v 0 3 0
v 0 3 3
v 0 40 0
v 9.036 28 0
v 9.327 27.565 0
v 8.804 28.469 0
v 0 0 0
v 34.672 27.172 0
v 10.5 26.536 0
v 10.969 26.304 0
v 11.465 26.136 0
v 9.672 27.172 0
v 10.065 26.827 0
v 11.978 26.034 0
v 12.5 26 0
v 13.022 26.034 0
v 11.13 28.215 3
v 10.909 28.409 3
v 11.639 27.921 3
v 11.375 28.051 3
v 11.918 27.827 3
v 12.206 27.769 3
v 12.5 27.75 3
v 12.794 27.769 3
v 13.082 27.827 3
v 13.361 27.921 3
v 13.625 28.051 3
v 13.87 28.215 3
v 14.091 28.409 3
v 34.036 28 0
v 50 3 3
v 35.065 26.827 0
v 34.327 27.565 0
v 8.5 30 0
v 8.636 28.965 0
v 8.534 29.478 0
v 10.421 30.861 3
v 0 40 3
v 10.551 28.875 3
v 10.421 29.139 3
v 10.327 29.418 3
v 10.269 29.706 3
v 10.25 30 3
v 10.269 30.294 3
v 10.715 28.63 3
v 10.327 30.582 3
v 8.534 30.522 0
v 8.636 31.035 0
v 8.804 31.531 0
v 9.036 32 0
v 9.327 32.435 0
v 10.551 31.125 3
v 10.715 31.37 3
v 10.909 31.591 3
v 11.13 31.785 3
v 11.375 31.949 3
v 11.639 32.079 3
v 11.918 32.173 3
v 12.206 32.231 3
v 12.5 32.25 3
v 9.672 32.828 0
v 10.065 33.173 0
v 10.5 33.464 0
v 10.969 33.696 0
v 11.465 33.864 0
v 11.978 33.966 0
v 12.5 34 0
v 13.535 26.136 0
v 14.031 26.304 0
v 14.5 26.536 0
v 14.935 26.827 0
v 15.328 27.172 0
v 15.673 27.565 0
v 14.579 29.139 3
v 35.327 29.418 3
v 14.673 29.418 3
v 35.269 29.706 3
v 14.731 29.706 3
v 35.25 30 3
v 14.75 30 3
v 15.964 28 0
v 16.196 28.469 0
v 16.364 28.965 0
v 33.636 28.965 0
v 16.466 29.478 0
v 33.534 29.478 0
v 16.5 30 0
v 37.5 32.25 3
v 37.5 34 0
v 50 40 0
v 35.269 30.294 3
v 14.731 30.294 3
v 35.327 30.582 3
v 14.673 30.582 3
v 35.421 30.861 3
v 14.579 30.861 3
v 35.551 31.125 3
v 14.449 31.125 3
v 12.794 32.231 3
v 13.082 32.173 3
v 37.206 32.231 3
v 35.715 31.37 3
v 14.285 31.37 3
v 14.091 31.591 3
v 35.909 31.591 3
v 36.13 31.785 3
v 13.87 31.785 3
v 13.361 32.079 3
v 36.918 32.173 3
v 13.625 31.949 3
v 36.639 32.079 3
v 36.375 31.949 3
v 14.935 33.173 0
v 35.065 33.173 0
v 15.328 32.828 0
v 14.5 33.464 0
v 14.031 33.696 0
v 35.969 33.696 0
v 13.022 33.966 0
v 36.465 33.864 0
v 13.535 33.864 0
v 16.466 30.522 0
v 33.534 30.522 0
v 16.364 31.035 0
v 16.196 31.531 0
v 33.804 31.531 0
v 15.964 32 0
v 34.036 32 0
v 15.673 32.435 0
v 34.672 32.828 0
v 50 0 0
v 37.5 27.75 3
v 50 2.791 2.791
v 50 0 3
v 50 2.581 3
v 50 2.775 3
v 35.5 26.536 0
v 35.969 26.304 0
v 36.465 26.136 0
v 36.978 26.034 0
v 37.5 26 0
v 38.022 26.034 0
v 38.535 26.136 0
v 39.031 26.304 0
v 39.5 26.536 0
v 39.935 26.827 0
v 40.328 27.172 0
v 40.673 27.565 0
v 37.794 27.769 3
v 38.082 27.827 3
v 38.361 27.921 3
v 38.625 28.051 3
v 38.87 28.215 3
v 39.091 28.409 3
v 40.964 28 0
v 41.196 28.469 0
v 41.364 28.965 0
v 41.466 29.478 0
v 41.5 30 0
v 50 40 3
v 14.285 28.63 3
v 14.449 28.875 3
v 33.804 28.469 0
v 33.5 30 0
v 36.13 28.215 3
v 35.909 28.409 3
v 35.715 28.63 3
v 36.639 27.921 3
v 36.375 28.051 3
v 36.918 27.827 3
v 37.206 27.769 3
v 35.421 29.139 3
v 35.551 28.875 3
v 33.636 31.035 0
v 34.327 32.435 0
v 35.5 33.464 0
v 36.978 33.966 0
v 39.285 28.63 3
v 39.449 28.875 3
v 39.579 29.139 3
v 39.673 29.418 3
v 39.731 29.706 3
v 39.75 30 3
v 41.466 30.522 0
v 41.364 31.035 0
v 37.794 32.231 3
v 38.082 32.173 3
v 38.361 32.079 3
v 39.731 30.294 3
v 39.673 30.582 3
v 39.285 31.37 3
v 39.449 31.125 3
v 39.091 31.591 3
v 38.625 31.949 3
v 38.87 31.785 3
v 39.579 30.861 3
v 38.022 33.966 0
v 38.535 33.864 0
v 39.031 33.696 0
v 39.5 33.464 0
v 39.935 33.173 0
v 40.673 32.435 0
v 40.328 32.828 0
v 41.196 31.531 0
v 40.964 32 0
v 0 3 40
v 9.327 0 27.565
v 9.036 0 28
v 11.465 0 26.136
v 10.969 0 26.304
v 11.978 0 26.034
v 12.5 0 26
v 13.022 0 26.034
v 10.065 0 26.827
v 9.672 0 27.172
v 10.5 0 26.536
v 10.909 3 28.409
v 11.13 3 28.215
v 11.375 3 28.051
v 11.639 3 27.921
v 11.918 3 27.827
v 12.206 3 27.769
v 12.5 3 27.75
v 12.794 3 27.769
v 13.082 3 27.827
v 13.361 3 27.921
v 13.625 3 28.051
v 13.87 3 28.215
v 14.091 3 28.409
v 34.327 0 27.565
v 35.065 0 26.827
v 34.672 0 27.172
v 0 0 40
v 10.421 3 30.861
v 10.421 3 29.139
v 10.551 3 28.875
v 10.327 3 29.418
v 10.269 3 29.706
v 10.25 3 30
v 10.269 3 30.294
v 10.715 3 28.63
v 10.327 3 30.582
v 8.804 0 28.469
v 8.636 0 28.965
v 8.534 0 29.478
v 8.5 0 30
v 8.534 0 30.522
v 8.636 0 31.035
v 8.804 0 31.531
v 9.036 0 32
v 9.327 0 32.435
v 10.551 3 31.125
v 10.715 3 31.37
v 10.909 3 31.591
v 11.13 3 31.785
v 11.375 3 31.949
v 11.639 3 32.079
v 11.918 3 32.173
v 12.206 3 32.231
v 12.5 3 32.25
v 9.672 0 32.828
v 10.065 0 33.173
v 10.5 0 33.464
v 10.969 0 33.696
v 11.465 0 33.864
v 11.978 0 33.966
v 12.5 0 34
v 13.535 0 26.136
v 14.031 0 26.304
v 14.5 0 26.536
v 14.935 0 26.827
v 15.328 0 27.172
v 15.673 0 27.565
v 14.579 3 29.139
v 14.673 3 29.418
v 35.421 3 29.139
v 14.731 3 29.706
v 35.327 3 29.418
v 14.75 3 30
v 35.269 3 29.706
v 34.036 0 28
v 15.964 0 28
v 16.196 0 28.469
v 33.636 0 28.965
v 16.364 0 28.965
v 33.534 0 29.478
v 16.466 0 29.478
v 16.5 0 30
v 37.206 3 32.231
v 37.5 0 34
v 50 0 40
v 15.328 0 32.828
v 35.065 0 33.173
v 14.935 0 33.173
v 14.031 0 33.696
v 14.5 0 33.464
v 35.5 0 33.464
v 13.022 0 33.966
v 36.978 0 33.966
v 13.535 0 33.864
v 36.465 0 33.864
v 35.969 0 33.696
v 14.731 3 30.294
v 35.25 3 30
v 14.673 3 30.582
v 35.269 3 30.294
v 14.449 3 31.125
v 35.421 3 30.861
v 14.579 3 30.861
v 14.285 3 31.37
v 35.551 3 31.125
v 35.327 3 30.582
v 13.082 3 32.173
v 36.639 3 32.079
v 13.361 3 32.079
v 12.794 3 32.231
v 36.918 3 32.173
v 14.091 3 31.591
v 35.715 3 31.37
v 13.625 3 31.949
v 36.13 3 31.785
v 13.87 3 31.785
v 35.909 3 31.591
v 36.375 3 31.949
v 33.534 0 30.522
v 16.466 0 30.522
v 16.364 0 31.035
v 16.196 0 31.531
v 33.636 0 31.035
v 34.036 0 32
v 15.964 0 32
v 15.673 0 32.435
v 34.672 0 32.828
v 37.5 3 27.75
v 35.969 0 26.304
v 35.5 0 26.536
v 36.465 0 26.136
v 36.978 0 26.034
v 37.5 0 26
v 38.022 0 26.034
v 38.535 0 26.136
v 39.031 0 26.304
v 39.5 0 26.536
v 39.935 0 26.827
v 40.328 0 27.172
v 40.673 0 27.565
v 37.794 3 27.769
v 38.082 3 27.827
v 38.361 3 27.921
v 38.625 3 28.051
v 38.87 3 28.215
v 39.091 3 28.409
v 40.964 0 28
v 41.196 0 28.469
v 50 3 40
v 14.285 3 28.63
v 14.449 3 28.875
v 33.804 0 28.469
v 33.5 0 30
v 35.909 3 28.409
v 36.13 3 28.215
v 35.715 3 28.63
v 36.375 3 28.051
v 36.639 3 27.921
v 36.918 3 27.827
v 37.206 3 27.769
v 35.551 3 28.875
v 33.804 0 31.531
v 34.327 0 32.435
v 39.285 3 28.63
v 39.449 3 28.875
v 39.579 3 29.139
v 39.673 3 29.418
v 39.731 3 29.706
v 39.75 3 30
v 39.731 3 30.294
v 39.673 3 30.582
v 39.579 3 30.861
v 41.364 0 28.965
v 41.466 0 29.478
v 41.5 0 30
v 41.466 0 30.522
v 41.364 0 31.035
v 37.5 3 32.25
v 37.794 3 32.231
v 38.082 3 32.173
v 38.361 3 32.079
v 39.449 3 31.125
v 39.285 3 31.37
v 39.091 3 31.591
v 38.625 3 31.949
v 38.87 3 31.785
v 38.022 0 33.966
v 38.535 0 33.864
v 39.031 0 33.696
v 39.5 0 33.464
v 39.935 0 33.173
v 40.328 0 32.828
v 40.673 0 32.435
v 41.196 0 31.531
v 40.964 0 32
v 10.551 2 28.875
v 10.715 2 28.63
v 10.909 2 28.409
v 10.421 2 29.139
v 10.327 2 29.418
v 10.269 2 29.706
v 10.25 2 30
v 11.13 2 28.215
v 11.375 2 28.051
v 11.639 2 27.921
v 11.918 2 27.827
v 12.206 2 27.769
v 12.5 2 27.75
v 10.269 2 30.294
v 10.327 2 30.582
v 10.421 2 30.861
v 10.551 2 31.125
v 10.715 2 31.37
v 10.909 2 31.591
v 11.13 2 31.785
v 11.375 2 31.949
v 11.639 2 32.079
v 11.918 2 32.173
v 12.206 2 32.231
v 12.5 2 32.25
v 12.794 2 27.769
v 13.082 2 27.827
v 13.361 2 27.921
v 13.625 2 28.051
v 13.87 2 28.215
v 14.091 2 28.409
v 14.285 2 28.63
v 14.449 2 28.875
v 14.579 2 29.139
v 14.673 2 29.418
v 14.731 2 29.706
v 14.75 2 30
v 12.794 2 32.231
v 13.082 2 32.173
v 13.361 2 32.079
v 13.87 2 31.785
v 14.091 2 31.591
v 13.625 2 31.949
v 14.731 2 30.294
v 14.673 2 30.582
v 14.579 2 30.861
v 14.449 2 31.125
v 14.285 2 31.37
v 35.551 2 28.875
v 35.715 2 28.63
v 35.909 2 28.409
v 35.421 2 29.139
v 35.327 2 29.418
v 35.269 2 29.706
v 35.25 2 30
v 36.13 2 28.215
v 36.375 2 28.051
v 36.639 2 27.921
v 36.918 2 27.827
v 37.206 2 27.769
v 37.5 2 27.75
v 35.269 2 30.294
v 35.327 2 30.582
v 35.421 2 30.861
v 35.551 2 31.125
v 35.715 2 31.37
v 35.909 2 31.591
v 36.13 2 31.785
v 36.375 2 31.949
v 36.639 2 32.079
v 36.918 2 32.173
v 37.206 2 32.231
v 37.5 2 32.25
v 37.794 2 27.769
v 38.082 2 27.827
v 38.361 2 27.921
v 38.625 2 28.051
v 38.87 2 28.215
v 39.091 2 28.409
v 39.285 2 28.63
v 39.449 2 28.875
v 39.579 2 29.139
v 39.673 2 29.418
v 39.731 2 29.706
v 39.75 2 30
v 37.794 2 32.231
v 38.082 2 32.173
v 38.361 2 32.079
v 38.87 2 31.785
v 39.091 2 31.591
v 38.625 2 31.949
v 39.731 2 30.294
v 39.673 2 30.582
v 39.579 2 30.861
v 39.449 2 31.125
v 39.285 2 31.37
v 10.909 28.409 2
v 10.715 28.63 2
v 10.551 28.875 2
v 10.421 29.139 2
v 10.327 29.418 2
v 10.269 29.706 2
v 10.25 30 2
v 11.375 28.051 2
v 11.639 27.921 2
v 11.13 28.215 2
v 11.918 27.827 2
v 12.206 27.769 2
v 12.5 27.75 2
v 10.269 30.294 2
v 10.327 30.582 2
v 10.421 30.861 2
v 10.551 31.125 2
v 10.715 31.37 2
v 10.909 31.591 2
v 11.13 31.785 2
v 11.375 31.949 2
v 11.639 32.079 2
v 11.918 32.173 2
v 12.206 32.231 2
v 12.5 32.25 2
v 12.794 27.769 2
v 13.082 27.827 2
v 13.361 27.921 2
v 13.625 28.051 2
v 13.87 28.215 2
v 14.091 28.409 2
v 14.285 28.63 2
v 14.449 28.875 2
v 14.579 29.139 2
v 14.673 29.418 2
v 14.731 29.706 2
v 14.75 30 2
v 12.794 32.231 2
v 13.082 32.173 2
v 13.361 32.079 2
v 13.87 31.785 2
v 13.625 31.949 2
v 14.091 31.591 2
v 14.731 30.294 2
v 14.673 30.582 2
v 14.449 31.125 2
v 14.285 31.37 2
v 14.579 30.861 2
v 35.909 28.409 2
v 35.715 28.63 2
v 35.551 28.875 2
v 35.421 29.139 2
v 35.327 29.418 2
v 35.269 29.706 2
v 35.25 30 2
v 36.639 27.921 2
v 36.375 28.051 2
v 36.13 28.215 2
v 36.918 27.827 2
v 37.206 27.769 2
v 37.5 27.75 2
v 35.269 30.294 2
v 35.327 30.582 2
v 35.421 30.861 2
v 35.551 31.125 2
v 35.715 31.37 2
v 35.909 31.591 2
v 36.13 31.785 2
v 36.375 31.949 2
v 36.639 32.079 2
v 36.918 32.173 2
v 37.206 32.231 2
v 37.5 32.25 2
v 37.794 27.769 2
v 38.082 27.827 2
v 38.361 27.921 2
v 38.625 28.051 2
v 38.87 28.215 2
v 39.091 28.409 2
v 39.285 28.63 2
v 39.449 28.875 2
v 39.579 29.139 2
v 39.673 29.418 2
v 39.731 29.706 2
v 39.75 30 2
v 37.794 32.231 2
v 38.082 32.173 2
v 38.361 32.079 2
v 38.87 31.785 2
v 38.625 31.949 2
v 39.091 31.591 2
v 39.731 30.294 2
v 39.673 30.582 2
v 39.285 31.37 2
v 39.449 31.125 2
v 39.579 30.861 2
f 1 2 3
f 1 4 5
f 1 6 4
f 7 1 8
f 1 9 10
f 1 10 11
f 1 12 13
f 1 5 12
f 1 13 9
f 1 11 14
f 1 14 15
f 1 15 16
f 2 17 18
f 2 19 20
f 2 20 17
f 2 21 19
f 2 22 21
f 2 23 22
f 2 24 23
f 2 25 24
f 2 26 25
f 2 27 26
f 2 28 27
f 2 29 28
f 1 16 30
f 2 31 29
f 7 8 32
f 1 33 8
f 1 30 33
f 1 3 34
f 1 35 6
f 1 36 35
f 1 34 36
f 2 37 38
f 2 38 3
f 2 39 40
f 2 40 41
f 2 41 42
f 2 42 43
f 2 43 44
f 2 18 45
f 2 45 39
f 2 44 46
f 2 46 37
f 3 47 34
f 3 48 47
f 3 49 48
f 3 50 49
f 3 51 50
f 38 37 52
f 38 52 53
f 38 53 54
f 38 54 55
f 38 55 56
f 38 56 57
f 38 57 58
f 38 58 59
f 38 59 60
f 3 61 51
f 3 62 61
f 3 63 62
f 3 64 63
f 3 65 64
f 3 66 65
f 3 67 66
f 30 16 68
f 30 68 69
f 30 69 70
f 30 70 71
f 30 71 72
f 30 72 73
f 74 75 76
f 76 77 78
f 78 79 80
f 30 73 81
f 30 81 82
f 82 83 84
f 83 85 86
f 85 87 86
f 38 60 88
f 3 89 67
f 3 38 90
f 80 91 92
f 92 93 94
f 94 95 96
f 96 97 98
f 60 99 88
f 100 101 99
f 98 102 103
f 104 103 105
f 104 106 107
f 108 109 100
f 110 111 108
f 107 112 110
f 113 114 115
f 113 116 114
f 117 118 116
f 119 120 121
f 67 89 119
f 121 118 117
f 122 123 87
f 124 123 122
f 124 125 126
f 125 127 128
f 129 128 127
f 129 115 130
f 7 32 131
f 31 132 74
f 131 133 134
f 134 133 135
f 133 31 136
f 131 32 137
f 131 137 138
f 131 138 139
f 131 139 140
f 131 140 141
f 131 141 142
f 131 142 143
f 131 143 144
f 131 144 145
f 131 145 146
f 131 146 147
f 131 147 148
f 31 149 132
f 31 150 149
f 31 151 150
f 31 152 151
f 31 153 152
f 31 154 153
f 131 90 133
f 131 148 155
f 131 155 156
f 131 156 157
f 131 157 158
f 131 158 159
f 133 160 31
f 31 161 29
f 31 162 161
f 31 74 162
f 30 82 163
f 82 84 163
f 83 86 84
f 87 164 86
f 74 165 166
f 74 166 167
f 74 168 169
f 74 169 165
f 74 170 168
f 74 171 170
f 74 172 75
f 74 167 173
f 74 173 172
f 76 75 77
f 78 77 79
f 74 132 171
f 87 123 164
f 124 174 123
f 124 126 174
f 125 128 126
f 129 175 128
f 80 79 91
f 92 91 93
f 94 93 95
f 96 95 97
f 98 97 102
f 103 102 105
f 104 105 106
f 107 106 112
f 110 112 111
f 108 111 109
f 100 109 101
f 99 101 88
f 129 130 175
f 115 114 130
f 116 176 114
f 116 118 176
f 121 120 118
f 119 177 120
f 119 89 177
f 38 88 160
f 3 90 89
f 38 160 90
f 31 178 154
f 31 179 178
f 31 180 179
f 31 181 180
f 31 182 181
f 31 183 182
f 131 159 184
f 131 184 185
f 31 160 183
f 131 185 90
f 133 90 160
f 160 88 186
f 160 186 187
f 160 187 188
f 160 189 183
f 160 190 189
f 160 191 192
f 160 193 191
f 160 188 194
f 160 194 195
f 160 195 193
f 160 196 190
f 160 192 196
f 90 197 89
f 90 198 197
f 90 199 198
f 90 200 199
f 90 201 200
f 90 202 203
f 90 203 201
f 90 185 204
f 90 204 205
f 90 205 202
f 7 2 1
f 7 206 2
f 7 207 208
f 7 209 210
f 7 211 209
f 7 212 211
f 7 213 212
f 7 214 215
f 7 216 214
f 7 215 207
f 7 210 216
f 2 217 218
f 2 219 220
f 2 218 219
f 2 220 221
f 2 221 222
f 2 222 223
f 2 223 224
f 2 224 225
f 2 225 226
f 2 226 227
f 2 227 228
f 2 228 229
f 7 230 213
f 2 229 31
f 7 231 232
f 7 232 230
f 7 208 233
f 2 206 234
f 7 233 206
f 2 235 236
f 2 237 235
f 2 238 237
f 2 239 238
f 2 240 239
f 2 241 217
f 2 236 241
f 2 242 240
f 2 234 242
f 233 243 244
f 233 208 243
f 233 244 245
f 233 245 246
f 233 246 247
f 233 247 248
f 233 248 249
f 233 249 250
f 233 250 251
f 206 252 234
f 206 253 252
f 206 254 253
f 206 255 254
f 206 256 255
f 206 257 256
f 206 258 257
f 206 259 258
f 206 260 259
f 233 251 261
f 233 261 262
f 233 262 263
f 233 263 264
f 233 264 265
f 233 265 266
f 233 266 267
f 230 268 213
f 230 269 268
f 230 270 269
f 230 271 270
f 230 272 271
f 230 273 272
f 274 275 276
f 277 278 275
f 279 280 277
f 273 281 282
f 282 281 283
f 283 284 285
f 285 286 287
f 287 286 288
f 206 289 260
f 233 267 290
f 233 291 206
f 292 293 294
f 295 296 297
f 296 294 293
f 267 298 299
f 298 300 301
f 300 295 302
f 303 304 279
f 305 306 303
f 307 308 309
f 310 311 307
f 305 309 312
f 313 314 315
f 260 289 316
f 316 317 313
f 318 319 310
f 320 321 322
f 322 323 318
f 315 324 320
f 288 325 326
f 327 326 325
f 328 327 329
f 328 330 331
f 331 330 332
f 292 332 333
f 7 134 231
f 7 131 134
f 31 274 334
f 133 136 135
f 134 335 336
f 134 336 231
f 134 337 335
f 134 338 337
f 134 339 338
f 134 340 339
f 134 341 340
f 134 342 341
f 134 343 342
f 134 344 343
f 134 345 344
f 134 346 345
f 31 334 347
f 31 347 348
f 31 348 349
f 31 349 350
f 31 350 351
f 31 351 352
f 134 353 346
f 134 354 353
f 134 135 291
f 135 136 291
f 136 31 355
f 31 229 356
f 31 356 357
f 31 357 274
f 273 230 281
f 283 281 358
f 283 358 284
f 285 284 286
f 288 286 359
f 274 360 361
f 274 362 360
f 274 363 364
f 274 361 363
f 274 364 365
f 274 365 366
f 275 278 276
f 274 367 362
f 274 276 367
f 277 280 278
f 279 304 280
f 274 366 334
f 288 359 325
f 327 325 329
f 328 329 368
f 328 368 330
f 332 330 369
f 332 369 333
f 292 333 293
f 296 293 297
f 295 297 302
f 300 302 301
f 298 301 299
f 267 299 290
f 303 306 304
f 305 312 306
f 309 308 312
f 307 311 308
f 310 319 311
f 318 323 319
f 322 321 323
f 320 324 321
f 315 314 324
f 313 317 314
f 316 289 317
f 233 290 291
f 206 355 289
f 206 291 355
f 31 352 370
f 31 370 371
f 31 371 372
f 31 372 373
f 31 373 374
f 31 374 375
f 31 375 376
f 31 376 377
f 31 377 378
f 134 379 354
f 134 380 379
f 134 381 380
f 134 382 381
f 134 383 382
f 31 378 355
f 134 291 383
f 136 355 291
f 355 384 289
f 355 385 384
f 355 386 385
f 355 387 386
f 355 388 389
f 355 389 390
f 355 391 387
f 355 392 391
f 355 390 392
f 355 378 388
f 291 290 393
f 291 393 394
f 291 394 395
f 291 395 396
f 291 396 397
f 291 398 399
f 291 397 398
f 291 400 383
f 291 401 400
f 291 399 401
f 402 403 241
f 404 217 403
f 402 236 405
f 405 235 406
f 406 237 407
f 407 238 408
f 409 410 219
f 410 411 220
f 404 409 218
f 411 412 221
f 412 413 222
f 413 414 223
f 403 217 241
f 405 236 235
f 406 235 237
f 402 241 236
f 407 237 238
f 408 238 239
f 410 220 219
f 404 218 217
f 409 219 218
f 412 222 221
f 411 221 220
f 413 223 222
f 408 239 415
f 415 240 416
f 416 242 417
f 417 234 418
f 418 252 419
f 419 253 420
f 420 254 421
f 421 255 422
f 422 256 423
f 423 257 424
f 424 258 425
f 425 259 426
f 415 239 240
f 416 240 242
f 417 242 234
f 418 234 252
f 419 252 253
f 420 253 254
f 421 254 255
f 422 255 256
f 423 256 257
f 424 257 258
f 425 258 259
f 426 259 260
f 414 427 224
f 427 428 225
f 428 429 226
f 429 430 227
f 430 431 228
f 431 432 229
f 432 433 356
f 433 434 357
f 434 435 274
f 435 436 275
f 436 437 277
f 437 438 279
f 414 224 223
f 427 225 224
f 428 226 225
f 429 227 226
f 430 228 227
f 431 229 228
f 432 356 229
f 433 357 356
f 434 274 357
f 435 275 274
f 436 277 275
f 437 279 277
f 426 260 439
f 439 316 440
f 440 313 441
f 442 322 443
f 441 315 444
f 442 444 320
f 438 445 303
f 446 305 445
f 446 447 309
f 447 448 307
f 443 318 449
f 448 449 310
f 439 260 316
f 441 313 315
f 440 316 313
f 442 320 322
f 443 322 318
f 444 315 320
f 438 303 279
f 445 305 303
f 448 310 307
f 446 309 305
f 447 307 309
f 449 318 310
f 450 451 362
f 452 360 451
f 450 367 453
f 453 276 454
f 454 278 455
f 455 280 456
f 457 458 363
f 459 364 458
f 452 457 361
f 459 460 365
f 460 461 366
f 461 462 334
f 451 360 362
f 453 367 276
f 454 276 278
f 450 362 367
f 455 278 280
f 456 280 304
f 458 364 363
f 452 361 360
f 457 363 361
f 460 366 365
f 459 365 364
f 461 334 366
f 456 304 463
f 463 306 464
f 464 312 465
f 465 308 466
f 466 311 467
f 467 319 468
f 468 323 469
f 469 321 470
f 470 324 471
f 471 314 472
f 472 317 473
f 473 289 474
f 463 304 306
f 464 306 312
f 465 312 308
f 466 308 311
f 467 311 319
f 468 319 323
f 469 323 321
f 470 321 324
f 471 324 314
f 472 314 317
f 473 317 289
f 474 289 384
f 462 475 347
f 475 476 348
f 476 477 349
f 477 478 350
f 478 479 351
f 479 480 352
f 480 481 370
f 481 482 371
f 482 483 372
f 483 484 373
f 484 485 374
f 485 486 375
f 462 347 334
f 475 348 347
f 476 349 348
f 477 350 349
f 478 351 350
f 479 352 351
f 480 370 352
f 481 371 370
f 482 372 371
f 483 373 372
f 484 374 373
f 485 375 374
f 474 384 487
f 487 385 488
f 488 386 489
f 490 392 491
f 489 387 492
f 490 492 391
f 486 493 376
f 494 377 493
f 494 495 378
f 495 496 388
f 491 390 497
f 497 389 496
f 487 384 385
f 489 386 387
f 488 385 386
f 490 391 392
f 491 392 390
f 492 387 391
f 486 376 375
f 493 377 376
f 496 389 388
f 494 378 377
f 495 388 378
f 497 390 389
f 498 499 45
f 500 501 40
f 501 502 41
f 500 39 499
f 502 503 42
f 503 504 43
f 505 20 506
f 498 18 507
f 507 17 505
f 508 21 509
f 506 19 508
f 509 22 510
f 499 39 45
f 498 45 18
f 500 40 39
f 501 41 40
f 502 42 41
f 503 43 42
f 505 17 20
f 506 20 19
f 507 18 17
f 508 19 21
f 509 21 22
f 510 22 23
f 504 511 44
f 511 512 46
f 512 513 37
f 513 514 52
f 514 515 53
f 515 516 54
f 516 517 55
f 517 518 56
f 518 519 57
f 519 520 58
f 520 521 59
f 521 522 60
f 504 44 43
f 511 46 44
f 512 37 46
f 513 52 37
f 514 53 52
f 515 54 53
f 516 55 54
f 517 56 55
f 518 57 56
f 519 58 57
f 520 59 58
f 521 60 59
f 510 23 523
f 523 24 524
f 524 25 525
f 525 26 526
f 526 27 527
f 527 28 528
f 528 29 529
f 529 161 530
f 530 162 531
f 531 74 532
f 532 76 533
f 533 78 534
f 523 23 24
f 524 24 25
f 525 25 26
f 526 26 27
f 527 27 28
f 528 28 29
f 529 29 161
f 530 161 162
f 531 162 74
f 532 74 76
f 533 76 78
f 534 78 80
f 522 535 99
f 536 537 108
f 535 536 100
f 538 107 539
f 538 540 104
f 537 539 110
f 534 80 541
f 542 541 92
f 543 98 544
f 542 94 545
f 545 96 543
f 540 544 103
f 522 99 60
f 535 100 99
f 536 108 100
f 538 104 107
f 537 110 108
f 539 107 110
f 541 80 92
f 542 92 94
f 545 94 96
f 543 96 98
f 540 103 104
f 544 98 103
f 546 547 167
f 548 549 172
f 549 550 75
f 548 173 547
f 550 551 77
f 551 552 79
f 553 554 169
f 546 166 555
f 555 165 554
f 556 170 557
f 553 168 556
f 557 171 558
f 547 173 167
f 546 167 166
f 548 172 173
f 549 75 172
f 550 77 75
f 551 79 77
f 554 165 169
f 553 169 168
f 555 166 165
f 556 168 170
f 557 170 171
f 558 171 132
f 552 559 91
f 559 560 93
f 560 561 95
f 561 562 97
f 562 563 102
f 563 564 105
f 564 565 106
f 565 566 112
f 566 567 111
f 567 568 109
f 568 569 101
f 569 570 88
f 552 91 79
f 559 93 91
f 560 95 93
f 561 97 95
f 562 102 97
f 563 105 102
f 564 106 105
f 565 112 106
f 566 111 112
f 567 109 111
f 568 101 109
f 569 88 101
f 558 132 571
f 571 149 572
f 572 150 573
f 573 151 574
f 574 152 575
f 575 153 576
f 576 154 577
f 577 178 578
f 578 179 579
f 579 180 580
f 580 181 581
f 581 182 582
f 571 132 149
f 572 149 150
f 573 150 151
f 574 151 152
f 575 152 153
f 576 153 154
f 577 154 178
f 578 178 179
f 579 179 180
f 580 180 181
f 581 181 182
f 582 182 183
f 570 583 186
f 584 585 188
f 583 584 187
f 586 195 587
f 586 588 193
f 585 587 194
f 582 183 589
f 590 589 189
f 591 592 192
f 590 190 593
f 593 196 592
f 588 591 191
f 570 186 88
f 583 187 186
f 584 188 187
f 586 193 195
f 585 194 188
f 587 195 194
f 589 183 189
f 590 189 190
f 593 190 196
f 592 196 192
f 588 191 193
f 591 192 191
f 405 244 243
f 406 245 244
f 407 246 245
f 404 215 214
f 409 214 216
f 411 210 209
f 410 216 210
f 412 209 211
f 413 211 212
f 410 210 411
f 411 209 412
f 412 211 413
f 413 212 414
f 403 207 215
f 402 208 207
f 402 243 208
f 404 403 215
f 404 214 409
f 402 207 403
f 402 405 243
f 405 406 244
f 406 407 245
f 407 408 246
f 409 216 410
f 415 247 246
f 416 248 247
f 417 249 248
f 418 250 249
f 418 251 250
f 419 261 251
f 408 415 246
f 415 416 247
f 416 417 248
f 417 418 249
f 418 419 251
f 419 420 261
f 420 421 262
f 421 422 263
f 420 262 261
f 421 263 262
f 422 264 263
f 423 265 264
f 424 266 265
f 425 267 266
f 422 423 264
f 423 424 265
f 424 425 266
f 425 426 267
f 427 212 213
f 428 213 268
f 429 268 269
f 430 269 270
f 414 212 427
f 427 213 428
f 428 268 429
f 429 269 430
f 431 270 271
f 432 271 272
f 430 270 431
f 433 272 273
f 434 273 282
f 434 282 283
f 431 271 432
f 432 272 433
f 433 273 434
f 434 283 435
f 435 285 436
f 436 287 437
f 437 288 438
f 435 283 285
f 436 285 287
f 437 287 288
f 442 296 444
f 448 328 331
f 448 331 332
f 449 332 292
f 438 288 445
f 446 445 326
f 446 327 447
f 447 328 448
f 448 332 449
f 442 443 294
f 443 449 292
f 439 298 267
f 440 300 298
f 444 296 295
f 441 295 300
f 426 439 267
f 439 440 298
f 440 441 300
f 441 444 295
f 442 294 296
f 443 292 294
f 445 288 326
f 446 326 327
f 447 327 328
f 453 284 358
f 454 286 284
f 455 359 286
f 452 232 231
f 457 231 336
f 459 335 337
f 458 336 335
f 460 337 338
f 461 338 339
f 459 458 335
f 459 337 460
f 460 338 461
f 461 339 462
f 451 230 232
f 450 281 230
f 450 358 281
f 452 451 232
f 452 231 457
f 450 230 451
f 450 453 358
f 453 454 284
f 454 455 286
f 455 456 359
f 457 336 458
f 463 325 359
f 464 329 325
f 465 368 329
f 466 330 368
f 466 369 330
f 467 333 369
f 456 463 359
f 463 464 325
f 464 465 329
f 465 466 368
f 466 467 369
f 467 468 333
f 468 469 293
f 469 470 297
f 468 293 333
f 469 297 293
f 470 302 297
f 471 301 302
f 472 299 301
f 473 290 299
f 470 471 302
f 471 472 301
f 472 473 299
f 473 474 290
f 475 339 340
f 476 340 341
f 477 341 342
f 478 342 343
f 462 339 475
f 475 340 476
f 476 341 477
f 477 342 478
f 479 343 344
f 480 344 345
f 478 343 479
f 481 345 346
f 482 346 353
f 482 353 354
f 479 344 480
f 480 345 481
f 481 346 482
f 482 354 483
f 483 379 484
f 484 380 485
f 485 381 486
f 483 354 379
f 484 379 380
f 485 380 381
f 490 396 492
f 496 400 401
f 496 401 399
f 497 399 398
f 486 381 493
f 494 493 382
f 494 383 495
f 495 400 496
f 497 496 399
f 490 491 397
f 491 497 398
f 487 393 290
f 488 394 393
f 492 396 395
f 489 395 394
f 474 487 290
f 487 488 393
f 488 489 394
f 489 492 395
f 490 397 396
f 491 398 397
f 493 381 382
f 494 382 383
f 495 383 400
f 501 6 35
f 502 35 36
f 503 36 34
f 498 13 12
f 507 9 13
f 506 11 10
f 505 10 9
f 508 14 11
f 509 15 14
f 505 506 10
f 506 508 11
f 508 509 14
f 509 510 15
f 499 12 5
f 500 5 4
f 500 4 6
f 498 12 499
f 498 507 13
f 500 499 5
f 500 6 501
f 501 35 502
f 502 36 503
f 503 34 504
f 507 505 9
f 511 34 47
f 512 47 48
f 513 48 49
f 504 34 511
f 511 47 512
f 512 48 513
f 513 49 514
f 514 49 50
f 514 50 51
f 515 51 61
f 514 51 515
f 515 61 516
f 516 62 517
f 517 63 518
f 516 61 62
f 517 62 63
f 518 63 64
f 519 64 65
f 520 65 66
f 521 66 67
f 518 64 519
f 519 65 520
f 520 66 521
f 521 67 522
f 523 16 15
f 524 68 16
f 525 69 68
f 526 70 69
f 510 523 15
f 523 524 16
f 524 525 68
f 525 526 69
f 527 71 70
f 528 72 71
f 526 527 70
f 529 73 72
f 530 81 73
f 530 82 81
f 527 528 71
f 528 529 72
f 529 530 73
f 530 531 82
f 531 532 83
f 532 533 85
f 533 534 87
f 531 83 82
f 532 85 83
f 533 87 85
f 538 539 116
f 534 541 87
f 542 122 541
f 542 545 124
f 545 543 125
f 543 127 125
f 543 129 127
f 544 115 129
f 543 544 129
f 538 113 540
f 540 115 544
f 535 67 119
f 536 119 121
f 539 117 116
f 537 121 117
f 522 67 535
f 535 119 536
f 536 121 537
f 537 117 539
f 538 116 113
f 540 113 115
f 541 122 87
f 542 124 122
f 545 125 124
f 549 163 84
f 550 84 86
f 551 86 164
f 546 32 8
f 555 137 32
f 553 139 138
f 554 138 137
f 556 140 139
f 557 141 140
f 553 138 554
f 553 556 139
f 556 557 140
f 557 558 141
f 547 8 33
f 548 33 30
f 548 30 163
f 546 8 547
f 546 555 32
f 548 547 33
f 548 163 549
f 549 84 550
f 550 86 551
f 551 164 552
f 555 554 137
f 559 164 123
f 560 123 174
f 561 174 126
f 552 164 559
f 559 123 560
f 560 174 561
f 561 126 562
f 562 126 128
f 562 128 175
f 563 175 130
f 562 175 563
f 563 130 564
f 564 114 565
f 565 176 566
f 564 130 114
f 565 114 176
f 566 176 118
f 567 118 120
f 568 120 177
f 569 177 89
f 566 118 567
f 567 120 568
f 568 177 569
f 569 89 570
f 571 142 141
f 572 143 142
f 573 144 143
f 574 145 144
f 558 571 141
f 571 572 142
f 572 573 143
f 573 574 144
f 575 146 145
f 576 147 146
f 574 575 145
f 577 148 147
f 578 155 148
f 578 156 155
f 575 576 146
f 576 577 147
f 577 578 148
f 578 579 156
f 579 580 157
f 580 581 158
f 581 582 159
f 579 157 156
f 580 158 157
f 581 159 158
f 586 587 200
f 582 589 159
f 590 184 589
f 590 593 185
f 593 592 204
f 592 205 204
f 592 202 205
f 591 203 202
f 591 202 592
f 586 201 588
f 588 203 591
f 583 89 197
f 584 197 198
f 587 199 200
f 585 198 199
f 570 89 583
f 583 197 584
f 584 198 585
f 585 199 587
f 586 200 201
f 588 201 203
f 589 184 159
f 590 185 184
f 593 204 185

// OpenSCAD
// L-bracket with countersunk holes

// パラメータ
width      = 50;   // 幅 (X方向)
depth      = 40;   // 水平面の奥行き / 垂直面の高さ
thickness  = 3;    // 板厚

hole_d     = 4.5;  // 貫通穴径 M4
cs_d       = 8;    // 皿座面径
cs_depth   = 2;    // 皿座面深さ
edge_off   = 10;   // 面の縁からの距離

// 穴中心のX座標（面の中心線X=25に対して左右対称、間隔25mm）
x1 = width/2 - 12.5;   // 12.5
x2 = width/2 + 12.5;   // 37.5

// 皿穴モジュール
// ローカル座標で板厚方向 +Z に貫通させる。
// 外側 = ローカル -Z 面（z=0 側）に皿座が広がるように作る。
module countersunk_hole(plate_thickness) {
    // 貫通穴
    translate([0, 0, -1])
        cylinder(h = plate_thickness + 2, d = hole_d, $fn = 48);
    // 皿座（外側=z=0側に向かって広がる円錐）
    translate([0, 0, 0])
        cylinder(h = cs_depth, d1 = cs_d, d2 = hole_d, $fn = 48);
}

module l_bracket() {
    difference() {
        union() {
            // 水平面 (+Y方向に伸びる)
            cube([width, depth, thickness]);
            // 垂直面 (+Z方向に伸びる)
            cube([width, thickness, depth]);
        }

        // --- 水平面の皿穴 (外側 = -Z 側 / 下面) ---
        // Y位置: 縁(Y=depth)から10mm内側 -> Y = depth - edge_off
        // 板のローカル+Z軸が +Z（板内方向）になるよう、回転なしで z=0 を下面に合わせる。
        // ただし外側=z=0=下面に皿座が来るので回転不要。
        for (x = [x1, x2]) {
            translate([x, depth - edge_off, 0])
                countersunk_hole(thickness);
        }

        // --- 垂直面の皿穴 (外側 = -Y 側 / 手前) ---
        // Z位置: 縁(Z=depth)から10mm内側 -> Z = depth - edge_off
        // 板のローカル+Z軸を +Y（板内方向）に向ける = X軸まわり -90度回転。
        // これで z=0 面が -Y 側（外側）になり、皿座が外側に広がる。
        for (x = [x1, x2]) {
            translate([x, 0, depth - edge_off])
                rotate([-90, 0, 0])
                    countersunk_hole(thickness);
        }
    }
}

l_bracket();
